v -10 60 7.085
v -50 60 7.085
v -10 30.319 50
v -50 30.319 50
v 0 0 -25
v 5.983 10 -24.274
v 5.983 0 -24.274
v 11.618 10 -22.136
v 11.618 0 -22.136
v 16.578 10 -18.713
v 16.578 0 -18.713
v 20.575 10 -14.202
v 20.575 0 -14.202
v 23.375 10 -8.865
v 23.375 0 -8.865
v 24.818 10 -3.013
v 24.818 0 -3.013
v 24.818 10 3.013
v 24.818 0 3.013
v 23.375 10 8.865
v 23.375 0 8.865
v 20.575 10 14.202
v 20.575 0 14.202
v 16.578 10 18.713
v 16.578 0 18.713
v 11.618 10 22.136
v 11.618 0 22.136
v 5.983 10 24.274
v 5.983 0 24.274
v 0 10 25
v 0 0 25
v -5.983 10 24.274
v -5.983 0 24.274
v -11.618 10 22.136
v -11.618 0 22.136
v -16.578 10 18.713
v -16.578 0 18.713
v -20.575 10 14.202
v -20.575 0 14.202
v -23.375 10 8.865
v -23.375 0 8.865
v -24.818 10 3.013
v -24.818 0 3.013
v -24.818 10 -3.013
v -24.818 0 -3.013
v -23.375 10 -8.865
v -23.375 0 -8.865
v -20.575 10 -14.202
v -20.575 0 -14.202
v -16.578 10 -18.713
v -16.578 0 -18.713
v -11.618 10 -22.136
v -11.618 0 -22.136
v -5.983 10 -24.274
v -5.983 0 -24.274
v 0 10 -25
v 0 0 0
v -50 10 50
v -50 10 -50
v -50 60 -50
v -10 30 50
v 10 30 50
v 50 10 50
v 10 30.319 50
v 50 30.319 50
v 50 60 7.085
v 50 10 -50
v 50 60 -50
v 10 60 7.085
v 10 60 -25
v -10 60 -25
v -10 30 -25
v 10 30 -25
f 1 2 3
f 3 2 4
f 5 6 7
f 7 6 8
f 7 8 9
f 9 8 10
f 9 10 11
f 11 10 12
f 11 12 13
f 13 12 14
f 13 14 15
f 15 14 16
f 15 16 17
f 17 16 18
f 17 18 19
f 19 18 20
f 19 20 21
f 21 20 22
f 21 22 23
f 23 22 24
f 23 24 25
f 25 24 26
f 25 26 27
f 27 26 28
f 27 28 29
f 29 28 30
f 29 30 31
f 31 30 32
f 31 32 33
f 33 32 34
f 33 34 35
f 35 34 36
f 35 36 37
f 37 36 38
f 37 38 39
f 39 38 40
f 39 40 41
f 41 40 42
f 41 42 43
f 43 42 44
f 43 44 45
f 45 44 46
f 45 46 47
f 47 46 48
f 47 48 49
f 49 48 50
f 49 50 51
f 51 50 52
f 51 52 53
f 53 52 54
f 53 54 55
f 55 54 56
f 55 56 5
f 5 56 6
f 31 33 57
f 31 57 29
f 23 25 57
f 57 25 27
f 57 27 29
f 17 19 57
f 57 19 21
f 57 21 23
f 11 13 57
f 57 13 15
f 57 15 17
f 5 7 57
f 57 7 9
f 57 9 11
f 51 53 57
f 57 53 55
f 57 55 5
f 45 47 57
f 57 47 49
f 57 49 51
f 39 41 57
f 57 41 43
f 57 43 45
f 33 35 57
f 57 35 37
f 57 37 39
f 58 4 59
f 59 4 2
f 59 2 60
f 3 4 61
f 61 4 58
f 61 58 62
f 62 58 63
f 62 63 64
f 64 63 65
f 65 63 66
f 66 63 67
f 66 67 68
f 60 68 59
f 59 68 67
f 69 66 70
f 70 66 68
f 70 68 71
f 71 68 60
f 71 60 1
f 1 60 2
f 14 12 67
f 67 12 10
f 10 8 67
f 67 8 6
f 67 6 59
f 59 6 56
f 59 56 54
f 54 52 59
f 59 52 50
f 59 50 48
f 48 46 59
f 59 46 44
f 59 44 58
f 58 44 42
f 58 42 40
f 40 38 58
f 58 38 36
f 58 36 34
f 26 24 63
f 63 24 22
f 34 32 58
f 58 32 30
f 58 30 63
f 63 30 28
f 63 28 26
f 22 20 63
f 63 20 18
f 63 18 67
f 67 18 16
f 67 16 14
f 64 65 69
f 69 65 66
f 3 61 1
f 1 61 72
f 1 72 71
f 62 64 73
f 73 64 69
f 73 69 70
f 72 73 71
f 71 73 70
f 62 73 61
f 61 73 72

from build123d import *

# Parameters (mm, degrees)
SKETCH1_R           = 25
BOSS_EXTRUDE1_DEPTH = 10
SKETCH2_W           = 100
SKETCH2_H           = 100
BOSS_EXTRUDE2_DEPTH = 50
CUT_EXTRUDE1_DEPTH  = 127.885775404
SKETCH7_W           = 20
SKETCH7_H           = 75
CUT_EXTRUDE3_DEPTH  = 30


with BuildPart() as part:
    # Sketch1 → Boss-Extrude1 (new body)
    with BuildSketch(Plane(origin=(0, 0, 0), x_dir=(1, 0, 0), z_dir=(0, 1, 0))):
        Circle(SKETCH1_R)
    extrude(amount=BOSS_EXTRUDE1_DEPTH)

    # Sketch2 → Boss-Extrude2 (add)
    with BuildSketch(Plane(origin=(0, 10, 0), x_dir=(1, 0, 0), z_dir=(0, 1, 0))):
        Rectangle(SKETCH2_W, SKETCH2_H)
    extrude(amount=BOSS_EXTRUDE2_DEPTH)

    # Sketch4 → Cut-Extrude1 (cut, through all)
    with BuildSketch(Plane.ZY.offset(50)):
        Polygon((50, 30.318847412), (7.085498034, 60), (50, 60), align=None)
    extrude(amount=-CUT_EXTRUDE1_DEPTH, mode=Mode.SUBTRACT)

    # Sketch7 → Cut-Extrude3 (cut)
    with BuildSketch(Plane(origin=(0, 60, 0), x_dir=(1, 0, 0), z_dir=(0, 1, 0))):
        with Locations((0, -12.5)):
            Rectangle(SKETCH7_W, SKETCH7_H)
    extrude(amount=-CUT_EXTRUDE3_DEPTH, mode=Mode.SUBTRACT)


solid = part.part
